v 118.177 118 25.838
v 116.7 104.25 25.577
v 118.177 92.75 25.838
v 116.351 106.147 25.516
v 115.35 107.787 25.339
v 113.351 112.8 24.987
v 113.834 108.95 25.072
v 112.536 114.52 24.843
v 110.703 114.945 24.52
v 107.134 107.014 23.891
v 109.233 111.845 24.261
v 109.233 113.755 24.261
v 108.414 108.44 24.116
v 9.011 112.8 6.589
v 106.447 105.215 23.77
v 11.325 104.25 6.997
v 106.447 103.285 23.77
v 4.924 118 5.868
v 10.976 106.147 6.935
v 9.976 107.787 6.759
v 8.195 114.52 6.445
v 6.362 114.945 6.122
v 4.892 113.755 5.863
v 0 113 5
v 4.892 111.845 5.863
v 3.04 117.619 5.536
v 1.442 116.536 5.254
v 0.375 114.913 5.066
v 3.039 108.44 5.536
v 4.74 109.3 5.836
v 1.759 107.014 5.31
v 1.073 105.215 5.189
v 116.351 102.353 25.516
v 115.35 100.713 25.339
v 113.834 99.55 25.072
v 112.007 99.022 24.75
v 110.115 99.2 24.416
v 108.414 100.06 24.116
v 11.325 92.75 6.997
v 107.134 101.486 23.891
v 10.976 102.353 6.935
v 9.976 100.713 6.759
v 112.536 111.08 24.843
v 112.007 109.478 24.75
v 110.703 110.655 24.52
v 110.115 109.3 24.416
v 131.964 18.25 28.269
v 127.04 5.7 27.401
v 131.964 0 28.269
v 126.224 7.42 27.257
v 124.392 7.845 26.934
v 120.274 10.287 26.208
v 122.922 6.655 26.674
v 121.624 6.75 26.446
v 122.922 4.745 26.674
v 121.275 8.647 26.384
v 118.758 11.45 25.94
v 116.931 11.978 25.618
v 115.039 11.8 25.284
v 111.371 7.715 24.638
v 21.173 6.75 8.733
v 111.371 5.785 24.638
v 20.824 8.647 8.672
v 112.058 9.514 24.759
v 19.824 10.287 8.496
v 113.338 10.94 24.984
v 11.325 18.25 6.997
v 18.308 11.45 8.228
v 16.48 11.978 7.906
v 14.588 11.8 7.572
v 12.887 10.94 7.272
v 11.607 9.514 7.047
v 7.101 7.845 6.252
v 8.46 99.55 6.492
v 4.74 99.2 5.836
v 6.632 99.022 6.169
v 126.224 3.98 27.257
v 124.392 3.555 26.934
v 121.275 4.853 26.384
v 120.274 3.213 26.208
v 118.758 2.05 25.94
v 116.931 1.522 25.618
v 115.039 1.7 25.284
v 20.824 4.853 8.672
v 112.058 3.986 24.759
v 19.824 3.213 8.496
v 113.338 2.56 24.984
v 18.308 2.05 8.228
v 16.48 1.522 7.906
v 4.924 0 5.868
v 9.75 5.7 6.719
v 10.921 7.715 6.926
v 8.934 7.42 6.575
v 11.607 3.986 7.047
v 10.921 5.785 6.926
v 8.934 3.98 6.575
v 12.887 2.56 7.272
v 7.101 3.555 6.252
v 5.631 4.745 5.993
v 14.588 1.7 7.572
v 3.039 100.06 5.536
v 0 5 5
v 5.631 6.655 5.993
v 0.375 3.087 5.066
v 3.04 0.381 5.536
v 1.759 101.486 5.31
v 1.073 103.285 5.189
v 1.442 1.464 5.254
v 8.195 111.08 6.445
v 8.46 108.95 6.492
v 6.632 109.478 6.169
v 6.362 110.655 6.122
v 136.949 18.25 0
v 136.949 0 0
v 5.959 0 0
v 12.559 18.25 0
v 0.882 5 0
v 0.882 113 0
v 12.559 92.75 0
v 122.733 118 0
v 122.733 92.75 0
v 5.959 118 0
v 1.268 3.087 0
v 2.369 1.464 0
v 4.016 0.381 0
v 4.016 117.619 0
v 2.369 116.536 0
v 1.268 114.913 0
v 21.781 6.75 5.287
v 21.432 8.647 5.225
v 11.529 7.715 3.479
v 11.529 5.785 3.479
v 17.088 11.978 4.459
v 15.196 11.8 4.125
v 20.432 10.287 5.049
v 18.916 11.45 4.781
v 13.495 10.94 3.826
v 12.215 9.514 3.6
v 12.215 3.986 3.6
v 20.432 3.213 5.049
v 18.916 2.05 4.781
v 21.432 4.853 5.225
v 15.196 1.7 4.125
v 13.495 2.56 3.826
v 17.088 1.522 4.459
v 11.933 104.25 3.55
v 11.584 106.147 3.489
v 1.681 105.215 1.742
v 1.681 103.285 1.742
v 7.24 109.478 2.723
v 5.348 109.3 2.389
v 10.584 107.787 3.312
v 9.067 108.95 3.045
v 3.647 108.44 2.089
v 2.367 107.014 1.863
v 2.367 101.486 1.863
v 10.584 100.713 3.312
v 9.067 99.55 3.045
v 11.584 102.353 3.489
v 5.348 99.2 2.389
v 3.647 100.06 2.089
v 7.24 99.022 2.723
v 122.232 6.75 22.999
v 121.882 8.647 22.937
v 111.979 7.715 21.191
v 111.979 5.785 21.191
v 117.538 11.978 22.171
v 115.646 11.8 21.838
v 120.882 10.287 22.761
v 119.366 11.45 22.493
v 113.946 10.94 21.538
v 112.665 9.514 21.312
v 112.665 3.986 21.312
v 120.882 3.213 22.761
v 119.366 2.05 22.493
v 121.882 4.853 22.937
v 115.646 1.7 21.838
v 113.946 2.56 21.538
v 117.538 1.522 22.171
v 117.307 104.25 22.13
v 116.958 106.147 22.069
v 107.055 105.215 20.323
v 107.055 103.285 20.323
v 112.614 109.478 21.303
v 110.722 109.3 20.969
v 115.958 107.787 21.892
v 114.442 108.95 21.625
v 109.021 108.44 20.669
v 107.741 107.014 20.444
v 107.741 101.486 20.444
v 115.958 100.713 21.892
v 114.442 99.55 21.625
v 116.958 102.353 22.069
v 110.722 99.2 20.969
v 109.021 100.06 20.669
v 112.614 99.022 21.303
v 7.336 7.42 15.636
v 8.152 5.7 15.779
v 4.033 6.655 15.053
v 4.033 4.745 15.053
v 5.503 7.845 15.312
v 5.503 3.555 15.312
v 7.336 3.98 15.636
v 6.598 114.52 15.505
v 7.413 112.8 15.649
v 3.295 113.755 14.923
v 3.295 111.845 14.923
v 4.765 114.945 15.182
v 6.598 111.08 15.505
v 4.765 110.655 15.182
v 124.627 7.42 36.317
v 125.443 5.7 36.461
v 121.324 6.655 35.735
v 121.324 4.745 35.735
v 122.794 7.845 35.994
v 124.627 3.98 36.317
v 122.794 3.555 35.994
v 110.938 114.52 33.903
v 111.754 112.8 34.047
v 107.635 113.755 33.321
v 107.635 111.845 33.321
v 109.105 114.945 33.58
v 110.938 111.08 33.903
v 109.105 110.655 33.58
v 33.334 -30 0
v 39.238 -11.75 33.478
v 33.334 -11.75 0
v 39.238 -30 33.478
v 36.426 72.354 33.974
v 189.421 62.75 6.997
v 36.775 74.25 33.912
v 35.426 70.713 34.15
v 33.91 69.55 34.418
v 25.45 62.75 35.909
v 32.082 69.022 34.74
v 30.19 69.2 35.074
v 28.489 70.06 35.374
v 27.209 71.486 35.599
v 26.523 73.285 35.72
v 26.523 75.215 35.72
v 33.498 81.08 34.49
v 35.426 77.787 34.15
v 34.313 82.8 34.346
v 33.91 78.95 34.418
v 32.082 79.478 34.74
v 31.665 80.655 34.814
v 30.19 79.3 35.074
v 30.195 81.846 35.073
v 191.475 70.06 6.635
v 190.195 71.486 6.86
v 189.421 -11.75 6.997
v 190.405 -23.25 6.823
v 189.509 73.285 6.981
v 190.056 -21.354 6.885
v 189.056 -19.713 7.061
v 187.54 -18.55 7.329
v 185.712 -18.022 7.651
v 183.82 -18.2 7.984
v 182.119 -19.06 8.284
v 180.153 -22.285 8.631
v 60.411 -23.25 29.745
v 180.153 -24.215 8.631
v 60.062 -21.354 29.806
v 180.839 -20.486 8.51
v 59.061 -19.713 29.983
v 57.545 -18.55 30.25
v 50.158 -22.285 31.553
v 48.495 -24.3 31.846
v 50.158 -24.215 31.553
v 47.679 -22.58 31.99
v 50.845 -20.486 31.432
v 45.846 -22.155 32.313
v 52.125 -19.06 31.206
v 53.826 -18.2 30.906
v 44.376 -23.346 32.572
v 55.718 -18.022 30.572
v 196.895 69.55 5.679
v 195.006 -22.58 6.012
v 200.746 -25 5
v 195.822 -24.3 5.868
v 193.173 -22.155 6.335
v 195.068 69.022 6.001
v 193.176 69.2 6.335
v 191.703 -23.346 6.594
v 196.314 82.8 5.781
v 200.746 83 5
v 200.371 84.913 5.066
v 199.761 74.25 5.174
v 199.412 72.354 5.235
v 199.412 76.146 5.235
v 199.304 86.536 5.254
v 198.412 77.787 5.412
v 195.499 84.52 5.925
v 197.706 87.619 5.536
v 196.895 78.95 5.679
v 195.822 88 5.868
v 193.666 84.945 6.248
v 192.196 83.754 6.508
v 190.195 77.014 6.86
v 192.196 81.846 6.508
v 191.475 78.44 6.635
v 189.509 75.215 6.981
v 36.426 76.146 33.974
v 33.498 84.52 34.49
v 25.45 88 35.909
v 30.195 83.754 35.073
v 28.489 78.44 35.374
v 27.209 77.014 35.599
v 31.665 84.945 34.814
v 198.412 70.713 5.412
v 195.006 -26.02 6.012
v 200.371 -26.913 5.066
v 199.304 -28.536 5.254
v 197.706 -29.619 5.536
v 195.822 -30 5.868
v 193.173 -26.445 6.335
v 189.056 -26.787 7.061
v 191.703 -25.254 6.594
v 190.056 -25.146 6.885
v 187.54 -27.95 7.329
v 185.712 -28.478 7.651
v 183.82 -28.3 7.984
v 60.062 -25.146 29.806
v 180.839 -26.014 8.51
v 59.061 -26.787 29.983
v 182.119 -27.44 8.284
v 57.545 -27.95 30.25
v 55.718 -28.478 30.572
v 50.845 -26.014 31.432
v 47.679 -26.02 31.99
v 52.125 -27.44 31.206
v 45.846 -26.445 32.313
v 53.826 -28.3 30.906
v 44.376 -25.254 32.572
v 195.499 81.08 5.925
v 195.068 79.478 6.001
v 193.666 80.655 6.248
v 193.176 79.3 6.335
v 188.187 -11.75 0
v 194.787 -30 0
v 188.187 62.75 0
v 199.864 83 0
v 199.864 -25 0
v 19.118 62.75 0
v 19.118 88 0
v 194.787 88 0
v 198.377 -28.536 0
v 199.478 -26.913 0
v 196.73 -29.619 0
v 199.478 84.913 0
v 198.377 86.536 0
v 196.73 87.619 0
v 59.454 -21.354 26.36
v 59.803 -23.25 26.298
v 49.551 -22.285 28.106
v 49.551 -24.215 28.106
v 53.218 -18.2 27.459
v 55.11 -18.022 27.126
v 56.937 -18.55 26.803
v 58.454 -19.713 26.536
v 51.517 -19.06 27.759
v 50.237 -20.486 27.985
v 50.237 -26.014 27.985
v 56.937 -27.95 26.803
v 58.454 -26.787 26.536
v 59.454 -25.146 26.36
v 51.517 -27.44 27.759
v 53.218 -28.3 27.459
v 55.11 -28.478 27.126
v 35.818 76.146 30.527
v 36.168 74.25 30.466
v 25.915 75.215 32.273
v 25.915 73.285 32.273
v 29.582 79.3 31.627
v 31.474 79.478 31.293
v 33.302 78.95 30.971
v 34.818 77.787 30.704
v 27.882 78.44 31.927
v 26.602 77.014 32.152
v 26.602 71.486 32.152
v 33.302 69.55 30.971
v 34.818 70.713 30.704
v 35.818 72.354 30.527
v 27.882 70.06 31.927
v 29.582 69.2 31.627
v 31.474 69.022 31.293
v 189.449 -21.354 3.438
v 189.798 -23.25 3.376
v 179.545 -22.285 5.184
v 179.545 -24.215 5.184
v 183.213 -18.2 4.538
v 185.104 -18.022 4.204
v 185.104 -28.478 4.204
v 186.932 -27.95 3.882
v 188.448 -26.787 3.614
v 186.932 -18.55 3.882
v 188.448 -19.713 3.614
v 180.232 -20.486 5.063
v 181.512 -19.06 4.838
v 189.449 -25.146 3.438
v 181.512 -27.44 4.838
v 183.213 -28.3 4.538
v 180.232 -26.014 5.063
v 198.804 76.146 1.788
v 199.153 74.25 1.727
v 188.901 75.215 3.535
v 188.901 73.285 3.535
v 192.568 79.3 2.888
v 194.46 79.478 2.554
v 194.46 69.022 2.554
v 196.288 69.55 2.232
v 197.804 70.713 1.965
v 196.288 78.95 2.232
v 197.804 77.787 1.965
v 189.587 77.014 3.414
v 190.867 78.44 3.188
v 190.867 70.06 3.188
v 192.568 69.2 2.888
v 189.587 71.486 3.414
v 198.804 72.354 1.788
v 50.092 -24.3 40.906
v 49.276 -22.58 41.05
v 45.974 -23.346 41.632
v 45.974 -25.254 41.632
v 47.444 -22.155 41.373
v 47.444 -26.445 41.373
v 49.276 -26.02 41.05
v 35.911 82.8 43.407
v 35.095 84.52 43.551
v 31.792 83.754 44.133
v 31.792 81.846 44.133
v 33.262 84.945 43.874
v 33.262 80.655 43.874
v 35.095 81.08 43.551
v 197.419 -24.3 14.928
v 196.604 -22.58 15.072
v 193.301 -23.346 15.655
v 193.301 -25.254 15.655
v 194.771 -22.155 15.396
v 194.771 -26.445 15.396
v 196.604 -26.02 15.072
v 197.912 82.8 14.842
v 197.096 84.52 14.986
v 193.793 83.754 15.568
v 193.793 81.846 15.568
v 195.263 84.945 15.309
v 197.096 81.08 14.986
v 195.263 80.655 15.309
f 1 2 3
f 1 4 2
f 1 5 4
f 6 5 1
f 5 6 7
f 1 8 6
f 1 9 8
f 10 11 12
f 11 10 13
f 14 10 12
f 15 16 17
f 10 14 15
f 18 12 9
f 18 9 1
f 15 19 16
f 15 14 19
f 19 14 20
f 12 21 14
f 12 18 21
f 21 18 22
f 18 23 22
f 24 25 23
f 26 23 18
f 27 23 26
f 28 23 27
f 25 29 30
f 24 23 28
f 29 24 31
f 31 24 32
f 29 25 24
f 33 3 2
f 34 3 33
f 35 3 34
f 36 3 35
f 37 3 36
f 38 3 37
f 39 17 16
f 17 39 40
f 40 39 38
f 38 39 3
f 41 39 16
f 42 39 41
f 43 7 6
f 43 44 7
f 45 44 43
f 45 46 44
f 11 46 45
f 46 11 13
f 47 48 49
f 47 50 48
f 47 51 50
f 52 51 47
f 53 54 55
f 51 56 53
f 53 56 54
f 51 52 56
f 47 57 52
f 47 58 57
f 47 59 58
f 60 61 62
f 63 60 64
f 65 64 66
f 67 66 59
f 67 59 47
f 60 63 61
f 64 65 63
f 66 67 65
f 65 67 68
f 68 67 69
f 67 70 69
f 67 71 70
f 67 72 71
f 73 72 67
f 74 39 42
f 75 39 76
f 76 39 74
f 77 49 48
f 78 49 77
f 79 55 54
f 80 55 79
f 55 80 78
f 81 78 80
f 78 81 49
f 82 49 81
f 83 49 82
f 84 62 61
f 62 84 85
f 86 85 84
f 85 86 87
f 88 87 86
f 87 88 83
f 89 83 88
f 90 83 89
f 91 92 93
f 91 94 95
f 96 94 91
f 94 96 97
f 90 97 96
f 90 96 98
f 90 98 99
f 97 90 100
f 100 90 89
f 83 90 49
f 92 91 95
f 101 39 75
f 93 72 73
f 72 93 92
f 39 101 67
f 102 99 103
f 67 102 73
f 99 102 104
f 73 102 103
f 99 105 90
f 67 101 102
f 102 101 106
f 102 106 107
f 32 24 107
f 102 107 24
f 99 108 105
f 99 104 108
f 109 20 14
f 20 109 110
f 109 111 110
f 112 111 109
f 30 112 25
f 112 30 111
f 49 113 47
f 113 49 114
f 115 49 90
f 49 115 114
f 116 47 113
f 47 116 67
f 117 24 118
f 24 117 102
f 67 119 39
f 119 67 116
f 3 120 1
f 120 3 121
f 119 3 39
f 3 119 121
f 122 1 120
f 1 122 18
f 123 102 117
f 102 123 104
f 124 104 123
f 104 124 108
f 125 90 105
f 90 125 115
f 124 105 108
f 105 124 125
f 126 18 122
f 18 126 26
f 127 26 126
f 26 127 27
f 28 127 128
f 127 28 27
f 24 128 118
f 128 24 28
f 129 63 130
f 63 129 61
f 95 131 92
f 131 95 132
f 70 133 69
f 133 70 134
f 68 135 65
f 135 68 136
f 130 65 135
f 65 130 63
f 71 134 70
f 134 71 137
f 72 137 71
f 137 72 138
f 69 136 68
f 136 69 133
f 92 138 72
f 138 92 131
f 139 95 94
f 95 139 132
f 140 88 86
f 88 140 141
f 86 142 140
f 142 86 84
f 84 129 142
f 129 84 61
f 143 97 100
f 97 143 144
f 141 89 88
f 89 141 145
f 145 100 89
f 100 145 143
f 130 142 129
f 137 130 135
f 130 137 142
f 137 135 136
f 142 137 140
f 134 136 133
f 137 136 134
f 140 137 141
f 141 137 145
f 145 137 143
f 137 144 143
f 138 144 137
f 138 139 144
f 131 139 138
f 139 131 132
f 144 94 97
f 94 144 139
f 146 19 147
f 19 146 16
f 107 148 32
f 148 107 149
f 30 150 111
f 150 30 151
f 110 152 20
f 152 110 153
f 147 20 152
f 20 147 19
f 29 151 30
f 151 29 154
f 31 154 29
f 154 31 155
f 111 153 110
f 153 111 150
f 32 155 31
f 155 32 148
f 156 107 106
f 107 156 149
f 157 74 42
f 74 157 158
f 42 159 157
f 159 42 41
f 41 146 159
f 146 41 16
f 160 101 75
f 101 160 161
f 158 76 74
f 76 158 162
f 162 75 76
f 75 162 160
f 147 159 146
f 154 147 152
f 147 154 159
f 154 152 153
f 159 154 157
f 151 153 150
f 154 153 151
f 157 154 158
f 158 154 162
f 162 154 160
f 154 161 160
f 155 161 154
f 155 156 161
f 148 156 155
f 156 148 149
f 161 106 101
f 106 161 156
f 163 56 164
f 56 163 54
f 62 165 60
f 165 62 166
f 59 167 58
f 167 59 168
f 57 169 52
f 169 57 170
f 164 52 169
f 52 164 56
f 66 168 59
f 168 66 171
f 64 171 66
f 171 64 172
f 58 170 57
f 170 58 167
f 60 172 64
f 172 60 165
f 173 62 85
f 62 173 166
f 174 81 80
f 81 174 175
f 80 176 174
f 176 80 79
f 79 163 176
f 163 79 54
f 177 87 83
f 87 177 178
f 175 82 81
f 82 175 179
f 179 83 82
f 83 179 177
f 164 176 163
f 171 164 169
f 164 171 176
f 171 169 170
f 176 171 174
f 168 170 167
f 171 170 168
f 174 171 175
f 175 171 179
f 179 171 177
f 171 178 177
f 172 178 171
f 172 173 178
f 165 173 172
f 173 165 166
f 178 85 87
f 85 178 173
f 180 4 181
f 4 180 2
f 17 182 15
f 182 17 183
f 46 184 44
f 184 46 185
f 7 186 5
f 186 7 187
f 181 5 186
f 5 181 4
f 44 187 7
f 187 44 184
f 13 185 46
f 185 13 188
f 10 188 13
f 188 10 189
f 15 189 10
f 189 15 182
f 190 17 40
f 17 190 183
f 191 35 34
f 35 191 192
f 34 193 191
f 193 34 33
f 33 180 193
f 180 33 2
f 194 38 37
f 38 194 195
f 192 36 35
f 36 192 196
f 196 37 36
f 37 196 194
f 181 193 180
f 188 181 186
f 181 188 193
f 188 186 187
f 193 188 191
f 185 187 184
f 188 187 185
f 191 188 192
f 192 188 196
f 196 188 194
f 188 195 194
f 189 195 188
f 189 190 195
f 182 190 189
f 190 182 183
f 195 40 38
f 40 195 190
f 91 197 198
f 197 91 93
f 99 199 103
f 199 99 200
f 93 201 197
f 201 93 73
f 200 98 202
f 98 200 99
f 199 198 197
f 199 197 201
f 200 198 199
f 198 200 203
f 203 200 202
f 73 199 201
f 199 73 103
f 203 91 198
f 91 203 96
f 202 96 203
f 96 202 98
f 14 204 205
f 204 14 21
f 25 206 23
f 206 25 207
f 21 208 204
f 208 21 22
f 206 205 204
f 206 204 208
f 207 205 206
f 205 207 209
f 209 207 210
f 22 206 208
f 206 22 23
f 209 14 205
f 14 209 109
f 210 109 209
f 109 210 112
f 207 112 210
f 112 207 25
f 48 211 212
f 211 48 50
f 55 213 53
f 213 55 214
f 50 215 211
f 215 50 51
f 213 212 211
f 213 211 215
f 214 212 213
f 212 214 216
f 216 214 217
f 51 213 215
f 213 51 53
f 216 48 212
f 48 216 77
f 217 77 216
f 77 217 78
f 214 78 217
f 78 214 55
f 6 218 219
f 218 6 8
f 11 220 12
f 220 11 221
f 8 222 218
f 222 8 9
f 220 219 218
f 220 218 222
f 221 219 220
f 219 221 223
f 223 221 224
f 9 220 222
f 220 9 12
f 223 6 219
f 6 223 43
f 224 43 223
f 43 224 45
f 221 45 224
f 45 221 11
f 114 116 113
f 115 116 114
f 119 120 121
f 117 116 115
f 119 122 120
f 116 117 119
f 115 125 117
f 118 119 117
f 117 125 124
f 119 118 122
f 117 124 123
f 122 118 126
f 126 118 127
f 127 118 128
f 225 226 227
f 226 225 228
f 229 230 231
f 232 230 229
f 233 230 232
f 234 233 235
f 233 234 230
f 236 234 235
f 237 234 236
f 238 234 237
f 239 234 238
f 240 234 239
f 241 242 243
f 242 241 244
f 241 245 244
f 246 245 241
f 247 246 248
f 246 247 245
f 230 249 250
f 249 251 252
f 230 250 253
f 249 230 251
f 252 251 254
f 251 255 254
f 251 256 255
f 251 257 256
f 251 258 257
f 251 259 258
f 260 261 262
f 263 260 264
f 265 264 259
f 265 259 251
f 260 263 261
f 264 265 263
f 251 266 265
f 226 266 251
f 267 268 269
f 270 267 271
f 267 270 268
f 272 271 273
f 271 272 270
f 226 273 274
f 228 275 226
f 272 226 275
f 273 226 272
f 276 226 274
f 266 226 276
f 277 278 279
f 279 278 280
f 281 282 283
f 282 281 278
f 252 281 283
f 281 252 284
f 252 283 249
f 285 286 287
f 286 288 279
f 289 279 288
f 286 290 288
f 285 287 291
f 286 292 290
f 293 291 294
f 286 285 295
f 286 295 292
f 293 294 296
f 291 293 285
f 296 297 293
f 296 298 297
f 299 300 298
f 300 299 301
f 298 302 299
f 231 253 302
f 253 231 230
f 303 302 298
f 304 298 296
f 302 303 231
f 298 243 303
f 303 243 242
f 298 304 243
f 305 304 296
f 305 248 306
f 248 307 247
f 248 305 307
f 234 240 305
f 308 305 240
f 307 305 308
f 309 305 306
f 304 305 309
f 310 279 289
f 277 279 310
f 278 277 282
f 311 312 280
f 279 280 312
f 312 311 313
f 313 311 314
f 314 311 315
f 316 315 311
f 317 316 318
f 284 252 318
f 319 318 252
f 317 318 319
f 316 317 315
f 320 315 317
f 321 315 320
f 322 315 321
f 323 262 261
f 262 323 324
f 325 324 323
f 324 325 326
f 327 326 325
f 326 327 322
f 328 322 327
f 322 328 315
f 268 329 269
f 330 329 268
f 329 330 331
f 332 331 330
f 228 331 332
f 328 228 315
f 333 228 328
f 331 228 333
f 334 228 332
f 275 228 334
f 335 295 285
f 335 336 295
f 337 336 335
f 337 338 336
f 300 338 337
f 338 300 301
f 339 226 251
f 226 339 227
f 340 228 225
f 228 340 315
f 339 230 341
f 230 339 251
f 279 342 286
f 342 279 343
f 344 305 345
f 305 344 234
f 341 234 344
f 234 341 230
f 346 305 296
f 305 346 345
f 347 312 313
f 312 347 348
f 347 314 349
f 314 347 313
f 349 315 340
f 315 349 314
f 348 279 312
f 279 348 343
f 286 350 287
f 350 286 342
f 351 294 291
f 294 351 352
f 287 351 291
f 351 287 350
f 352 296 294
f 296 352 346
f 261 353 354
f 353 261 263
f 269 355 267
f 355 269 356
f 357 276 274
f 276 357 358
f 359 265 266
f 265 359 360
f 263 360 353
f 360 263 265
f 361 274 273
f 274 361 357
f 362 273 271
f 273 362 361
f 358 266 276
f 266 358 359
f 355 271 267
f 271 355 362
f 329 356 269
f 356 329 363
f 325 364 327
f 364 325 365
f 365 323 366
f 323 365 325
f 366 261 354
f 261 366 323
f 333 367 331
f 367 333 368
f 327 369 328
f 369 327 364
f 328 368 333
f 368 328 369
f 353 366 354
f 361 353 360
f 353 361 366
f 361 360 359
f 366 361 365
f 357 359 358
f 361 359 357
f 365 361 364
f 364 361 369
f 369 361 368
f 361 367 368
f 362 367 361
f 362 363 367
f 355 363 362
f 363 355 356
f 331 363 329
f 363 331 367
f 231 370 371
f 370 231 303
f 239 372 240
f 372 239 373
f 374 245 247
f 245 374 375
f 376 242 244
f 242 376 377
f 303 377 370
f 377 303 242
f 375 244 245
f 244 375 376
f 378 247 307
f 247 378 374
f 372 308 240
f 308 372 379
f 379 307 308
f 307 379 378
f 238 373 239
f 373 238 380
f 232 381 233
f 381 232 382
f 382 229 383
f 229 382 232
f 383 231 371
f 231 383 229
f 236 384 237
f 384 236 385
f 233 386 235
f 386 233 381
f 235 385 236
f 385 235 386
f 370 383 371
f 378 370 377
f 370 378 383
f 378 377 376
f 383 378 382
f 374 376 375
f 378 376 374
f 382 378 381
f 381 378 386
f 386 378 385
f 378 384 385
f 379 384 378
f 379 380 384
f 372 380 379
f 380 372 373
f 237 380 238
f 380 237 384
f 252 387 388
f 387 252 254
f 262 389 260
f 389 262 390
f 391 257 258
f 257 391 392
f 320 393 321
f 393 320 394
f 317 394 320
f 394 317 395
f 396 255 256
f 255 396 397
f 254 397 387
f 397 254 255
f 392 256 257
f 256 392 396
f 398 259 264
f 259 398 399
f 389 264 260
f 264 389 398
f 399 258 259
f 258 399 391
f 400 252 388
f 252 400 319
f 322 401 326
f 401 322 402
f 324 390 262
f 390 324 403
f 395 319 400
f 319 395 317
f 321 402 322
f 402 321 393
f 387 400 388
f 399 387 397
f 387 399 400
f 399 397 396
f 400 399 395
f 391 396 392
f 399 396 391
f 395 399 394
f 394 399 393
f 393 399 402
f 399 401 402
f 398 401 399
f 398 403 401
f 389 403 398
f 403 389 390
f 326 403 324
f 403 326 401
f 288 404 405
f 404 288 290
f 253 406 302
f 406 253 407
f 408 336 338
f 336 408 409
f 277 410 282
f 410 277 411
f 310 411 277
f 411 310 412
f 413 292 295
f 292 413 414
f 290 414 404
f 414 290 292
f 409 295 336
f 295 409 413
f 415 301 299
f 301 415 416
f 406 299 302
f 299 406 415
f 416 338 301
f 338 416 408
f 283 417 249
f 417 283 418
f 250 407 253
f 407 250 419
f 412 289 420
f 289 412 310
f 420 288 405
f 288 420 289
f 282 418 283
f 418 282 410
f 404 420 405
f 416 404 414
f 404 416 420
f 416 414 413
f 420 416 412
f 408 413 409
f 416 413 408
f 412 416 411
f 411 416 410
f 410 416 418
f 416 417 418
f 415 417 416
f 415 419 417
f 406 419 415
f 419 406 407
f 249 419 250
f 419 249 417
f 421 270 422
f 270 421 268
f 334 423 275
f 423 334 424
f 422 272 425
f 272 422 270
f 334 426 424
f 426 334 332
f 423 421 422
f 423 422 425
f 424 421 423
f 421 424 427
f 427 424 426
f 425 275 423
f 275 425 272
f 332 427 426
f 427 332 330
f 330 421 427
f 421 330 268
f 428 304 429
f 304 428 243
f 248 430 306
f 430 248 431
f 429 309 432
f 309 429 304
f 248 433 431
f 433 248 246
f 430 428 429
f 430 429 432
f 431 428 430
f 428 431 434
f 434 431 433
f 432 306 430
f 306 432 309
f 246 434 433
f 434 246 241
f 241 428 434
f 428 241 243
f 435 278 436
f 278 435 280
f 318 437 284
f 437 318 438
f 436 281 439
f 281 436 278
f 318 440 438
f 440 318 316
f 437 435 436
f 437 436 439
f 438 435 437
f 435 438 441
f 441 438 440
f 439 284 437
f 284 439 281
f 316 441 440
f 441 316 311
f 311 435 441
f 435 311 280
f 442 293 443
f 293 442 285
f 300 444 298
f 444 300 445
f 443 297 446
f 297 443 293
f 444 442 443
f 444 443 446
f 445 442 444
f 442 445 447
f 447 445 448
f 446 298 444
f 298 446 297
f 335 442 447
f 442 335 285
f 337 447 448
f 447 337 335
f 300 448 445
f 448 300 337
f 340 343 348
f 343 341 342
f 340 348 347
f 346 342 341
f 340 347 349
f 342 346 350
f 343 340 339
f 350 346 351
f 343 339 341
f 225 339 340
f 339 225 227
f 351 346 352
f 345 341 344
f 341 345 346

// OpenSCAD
// file: measurements.scad
kb_w = 118;
kb_d1 = 18;
kb_d2 = 27;
kb_l_l1 = 120;
kb_l_l2 = 130;
kb_l_l3 = 134;
kb_l_l4 = 144;
kb_l_l5 = 134;
kb_w1 = 32;
kb_w2 = 19;
kb_w3 = 19;
kb_w4 = 19;
kb_w5 = 30;
kb_r_l1 = 178;
kb_r_l2 = 168;
kb_r_l3 = 164;
kb_r_l4 = 154;
kb_r_l5 = 164;

hole_dia = 5.4;
hole_r = hole_dia/2;
hole_d = 14.2;
foot_dia = 8.5;
foot_r = foot_dia/2;
foot_d = 2.5;
foot_d2 = 1.5;

holes_l = [
    [5+hole_r, 3+hole_r, 0],
    [4.25+hole_r, kb_w-2.5-hole_r, 0],
    [kb_l_l5-4.5-hole_r, 3+hole_r, 0],
    [kb_l_l1-4.4-hole_r, kb_w-2.5-hole_r, 0]
];
feet_l = [
    [12+foot_r, 2.5+foot_r, 0],
    [2+foot_r, kb_w-9.5-foot_r, 0],
    [kb_l_l5-11.5-foot_r, 2.5+foot_r, 0],
    [kb_l_l1-2.5-foot_r, kb_w-9.5-foot_r, 0]
];

holes_r = [
    [kb_r_l1-kb_r_l5+4.5+hole_r, 3+hole_r, 0],
    [4.1+hole_r, kb_w-2.5-hole_r, 0],
    [kb_r_l1-4.5-hole_r, 3+hole_r, 0],
    [kb_r_l1-4.0-hole_r, kb_w-2.5-hole_r, 0]
];
feet_r = [
    [kb_r_l1-kb_r_l5+12+foot_r, 2.5+foot_r, 0],
    [2+foot_r, kb_w-9.5-foot_r, 0],
    [kb_r_l1-11.5-foot_r, 2.5+foot_r, 0],
    [kb_r_l1-2-foot_r, kb_w-9.5-foot_r, 0]
];
// main file
include <measurements.scad>;

peg_fudge_r = 0.5;
peg_fudge_d = 5;
hole_fudge_r = 1;
hole_fudge_d = 1;
testfit_d = foot_d + hole_fudge_d + 2;
base_height = 60;
curve_r = 5;
tent_angle = 10;
tilt_angle = 0;

module peg() {
    cylinder(h=hole_d-peg_fudge_d, r=hole_r-peg_fudge_r);
}
module hole() {
    cylinder(h=2*(foot_d+hole_fudge_d), r=foot_r+hole_fudge_r, center=true);
}

module base_l(height) {
    difference() {
        union() {
            translate([curve_r, 0, 0]) cube([kb_l_l5-curve_r, feet_l[0][1]+foot_dia+3, height]);
            translate([0, curve_r, 0]) cube([foot_dia+3, kb_w - 2*curve_r, height]);
            piece1_w = kb_w-feet_l[1][1] + foot_dia + 3;
            translate([curve_r, kb_w-piece1_w, 0]) cube([kb_l_l1-curve_r, piece1_w, height]);
            translate([curve_r, curve_r, 0]) cylinder(r=curve_r, h=height);
            translate([curve_r, kb_w-curve_r, 0]) cylinder(r=curve_r, h=height);
        }
        for (coord = feet_l)
            translate(coord) translate([0, 0, height]) hole();
    }
    for (coord = holes_l)
        translate(coord) translate([0, 0, height]) peg();
}
module testfit_l() { base_l(testfit_d); }
module tent_l() {
    difference() {
        translate([0, kb_w, 5]) rotate([tilt_angle, -tent_angle, 0]) translate([0, -kb_w, -base_height])
            base_l(base_height);
        translate([0, 0, -base_height]) cube([kb_l_l5*1.2, kb_w, base_height]);
    }
}
tent_l();

module base_r(height) {
    difference() {
        union() {
            translate([kb_r_l1-kb_r_l5, 0, 0]) cube([kb_r_l5-curve_r, feet_r[0][1]+foot_dia+3, height]);
            translate([kb_r_l1-foot_dia-3, curve_r, 0]) cube([foot_dia+3, kb_w-2*curve_r, height]);
            piece1_w = kb_w-feet_r[1][1] + foot_dia + 3;
            translate([0, kb_w-piece1_w, 0]) cube([kb_r_l1-curve_r, piece1_w, height]);
            translate([kb_r_l1-curve_r, curve_r, 0]) cylinder(r=curve_r, h=height);
            translate([kb_r_l1-curve_r, kb_w - curve_r, 0]) cylinder(r=curve_r, h=height);
        }
        for (coord = feet_r)
            translate(coord) translate([0, 0, height]) hole();
    }
    for (coord = holes_r)
        translate(coord) translate([0, 0, height]) peg();
}
module testfit_r() { base_r(testfit_d); }
//translate([20, -30, 0]) base_r(base_height);
module tent_r() {
    difference() {
        translate([0, kb_w, 5]) rotate([tilt_angle, tent_angle, 0]) translate([-kb_r_l1, -kb_w, -base_height])
            base_r(base_height);
        translate([-kb_r_l1*1.2, 0, -base_height])
            cube([kb_r_l1*1.2, kb_w, base_height]);
    }
}
//translate([kb_r_l1, -30, 0]) tent_r();
translate([kb_r_l1/cos(tent_angle) + 20, -30, 0]) tent_r();
